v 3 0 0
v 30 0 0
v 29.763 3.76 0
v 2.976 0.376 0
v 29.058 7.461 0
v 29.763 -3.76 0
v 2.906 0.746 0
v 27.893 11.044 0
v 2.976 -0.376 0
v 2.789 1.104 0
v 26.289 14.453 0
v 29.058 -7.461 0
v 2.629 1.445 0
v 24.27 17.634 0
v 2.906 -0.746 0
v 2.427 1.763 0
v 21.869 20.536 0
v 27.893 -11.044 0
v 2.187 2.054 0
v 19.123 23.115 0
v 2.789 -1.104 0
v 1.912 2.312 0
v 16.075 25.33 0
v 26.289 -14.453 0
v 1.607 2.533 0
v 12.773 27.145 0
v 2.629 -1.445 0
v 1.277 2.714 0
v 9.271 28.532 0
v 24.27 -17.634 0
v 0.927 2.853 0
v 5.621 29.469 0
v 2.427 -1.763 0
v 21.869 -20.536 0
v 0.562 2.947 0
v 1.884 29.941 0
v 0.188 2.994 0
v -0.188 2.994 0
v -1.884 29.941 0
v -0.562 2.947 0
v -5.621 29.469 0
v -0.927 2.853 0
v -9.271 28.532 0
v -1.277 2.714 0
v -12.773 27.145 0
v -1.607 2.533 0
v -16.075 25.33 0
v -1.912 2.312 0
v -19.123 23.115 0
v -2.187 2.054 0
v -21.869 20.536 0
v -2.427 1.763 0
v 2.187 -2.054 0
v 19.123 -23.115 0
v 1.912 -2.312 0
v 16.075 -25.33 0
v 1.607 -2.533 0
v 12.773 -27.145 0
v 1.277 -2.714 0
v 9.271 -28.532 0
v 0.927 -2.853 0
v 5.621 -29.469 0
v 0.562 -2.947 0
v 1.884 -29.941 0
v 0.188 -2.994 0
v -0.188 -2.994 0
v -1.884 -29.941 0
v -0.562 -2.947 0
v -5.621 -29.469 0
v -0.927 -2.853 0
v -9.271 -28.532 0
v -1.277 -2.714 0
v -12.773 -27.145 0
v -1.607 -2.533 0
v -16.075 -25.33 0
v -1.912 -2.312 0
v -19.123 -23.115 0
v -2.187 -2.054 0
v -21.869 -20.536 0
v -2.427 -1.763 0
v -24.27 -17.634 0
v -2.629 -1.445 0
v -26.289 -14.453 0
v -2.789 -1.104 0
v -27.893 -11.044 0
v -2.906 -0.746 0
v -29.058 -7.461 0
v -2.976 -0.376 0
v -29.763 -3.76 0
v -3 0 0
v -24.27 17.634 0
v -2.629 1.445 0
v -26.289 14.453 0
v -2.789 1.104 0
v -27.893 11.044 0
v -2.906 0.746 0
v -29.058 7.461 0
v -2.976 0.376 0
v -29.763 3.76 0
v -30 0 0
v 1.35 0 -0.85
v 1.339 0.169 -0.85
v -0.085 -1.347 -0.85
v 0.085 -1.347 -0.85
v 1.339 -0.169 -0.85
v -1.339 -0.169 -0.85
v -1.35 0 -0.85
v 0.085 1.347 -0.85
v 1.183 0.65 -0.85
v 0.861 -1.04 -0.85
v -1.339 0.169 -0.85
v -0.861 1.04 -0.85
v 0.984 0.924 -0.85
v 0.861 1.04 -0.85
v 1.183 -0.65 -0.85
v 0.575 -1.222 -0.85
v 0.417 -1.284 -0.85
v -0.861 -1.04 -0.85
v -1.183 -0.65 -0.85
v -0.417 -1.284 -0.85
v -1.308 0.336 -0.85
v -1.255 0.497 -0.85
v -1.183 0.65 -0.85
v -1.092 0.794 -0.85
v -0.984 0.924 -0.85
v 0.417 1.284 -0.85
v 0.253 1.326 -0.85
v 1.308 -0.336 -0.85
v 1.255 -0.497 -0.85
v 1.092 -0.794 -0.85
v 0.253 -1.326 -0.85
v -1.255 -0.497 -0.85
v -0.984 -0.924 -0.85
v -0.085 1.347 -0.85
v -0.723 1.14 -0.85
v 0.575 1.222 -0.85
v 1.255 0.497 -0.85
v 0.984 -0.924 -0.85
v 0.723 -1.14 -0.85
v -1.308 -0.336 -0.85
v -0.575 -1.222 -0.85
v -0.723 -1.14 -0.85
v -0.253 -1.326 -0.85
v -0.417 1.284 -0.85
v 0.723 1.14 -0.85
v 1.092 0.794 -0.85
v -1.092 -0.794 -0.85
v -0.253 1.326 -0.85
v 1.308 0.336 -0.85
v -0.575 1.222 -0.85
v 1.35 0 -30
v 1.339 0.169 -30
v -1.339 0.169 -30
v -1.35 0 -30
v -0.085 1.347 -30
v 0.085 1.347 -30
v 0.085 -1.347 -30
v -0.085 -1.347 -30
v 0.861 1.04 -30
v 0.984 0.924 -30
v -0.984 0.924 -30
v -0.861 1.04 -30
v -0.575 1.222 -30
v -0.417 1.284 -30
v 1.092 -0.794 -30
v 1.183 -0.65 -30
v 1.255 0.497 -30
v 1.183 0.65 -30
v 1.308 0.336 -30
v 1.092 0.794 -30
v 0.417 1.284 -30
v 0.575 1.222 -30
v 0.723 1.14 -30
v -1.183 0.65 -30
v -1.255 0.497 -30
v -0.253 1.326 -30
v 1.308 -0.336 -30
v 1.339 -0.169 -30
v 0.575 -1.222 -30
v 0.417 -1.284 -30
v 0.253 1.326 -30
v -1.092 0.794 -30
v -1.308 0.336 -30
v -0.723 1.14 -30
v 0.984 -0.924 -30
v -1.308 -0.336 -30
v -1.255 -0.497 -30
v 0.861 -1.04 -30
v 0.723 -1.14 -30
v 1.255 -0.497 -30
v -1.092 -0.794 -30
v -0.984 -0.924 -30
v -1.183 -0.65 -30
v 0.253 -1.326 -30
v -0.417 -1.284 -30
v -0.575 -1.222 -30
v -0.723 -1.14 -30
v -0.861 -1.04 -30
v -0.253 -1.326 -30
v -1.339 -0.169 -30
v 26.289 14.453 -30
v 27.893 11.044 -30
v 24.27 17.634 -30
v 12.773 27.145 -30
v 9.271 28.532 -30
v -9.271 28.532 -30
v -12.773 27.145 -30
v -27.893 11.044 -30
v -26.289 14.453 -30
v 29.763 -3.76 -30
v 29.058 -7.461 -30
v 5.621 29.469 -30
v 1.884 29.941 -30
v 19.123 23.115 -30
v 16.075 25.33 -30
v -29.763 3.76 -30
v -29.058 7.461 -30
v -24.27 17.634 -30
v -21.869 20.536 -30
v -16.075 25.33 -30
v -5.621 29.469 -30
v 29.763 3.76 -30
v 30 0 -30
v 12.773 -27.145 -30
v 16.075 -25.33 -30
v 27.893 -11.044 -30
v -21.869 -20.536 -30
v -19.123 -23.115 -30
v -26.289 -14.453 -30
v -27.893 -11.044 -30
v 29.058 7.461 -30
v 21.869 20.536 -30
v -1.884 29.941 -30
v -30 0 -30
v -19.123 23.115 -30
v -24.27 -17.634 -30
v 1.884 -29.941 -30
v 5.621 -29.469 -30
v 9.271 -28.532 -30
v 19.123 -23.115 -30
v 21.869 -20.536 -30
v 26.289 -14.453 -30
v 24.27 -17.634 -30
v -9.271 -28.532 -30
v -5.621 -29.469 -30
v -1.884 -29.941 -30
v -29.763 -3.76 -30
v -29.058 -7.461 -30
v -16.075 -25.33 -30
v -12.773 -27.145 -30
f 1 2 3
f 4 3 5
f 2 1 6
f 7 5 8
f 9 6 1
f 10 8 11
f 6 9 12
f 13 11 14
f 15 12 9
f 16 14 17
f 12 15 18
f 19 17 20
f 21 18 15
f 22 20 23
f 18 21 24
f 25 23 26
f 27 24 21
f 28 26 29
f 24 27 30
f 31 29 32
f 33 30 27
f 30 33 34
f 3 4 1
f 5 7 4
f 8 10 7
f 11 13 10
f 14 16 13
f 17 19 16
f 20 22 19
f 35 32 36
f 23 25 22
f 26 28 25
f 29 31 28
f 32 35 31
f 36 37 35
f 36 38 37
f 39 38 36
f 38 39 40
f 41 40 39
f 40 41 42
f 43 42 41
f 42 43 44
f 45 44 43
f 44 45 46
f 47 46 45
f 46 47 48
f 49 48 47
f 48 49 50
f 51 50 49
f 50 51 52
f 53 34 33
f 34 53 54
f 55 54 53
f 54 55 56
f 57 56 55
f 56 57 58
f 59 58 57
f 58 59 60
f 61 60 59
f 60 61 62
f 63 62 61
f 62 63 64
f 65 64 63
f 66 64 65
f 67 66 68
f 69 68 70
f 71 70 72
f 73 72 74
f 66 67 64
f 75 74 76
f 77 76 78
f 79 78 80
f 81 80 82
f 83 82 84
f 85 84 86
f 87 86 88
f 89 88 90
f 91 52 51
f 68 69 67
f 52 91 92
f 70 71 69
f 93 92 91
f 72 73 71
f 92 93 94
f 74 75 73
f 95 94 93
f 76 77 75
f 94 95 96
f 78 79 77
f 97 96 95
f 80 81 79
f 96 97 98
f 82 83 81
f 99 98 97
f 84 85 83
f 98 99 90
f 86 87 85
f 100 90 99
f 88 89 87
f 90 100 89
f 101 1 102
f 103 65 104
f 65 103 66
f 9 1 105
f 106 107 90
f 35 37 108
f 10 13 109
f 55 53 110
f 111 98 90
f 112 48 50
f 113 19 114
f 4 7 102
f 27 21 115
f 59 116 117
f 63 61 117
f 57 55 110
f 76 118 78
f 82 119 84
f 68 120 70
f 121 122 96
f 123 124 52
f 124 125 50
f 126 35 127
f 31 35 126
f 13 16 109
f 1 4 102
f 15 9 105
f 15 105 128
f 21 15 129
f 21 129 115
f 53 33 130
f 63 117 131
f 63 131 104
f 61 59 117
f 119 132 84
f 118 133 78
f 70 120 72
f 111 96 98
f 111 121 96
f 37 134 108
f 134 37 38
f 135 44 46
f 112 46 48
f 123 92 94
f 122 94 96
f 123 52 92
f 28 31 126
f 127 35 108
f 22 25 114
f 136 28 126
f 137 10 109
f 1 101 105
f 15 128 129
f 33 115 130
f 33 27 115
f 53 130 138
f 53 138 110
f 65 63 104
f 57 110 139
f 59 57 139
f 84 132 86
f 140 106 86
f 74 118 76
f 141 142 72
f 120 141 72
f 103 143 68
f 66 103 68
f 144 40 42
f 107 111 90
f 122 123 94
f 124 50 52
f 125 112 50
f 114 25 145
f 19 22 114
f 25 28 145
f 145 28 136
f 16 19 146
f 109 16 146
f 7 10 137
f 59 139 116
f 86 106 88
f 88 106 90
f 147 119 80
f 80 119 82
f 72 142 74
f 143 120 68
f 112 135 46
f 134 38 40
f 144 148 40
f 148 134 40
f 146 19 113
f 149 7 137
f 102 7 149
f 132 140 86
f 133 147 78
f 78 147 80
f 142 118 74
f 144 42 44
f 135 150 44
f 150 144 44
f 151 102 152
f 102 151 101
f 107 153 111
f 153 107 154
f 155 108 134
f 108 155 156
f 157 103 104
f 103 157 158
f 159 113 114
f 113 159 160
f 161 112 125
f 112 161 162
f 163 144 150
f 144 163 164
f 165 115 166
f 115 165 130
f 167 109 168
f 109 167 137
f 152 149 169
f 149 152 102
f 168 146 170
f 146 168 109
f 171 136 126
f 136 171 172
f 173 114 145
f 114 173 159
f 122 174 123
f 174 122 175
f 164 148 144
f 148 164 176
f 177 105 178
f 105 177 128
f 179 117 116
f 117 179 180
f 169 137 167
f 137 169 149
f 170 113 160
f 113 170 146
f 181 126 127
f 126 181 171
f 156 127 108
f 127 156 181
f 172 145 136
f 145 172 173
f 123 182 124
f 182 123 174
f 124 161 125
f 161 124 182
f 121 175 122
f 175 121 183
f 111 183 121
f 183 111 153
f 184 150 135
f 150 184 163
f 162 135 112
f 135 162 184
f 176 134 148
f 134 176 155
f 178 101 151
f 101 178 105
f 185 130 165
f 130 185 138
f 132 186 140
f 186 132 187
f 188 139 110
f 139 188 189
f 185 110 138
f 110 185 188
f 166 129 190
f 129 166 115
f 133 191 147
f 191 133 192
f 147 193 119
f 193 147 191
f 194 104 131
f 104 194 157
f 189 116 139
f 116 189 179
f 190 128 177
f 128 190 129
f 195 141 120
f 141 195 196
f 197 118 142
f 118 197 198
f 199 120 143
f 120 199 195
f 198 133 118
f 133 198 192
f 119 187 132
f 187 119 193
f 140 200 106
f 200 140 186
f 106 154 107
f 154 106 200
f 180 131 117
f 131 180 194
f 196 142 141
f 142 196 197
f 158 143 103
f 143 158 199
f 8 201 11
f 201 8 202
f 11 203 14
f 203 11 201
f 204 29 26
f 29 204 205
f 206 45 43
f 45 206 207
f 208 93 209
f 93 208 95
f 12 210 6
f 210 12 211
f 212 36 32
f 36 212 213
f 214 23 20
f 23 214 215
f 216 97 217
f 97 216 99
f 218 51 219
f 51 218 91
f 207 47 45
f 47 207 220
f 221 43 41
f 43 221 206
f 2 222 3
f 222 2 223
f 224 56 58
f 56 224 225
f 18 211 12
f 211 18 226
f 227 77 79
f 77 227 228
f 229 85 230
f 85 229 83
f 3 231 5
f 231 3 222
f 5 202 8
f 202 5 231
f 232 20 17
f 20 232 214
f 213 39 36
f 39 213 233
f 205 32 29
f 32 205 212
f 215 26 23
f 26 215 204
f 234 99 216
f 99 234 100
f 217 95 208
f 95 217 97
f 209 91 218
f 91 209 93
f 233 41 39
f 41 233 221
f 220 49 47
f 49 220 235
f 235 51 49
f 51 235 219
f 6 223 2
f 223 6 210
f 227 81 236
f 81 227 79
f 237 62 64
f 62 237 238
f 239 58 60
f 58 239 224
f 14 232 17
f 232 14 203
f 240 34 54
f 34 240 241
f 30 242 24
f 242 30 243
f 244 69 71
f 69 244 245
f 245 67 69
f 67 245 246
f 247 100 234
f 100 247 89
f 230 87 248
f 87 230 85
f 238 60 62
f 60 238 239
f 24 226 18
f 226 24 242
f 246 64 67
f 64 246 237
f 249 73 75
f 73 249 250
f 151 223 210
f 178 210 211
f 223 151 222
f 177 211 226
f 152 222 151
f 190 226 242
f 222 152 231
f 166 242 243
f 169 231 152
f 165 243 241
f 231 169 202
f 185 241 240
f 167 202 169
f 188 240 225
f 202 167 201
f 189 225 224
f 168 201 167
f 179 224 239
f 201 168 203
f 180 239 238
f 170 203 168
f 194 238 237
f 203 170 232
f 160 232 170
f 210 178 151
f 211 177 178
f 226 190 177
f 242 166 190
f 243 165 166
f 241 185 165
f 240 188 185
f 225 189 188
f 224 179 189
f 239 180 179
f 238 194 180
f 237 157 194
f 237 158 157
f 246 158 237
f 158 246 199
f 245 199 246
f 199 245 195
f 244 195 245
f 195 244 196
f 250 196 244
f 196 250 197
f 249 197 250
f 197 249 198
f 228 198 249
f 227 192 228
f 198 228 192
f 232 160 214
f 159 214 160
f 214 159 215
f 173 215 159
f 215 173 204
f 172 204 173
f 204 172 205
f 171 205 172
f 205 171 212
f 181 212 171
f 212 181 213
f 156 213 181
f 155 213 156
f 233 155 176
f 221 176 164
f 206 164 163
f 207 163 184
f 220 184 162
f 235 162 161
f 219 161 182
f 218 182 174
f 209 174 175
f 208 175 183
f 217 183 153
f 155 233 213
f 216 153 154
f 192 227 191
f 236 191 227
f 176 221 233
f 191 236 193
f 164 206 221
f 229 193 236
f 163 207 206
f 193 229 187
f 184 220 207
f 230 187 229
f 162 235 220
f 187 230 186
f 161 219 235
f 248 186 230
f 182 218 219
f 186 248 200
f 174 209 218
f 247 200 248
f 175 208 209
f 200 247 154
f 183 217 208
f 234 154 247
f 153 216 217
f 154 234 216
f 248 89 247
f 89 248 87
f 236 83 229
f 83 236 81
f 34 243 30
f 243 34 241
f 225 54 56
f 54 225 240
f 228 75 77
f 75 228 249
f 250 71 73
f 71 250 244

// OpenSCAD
$fn = 50;

difference() {
	union() {
		translate(v = [0, 0, -30.0]) {
			cylinder(h = 30, r = 30.0);
		}
	}
	union() {
		translate(v = [0, 0, 0]) {
			rotate(a = [0, 0, 0]) {
				difference() {
					union() {
						translate(v = [0, 0, -33.0]) {
							cylinder(h = 33, r = 1.0);
						}
						translate(v = [0, 0, -0.85]) {
							cylinder(h = 0.85, r1 = 1.35, r2 = 3.0);
						}
						translate(v = [0, 0, -33.0]) {
							cylinder(h = 33, r = 1.35);
						}
						translate(v = [0, 0, -33.0]) {
							cylinder(h = 33, r = 1.0);
						}
					}
					union();
				}
			}
		}
	}
}
